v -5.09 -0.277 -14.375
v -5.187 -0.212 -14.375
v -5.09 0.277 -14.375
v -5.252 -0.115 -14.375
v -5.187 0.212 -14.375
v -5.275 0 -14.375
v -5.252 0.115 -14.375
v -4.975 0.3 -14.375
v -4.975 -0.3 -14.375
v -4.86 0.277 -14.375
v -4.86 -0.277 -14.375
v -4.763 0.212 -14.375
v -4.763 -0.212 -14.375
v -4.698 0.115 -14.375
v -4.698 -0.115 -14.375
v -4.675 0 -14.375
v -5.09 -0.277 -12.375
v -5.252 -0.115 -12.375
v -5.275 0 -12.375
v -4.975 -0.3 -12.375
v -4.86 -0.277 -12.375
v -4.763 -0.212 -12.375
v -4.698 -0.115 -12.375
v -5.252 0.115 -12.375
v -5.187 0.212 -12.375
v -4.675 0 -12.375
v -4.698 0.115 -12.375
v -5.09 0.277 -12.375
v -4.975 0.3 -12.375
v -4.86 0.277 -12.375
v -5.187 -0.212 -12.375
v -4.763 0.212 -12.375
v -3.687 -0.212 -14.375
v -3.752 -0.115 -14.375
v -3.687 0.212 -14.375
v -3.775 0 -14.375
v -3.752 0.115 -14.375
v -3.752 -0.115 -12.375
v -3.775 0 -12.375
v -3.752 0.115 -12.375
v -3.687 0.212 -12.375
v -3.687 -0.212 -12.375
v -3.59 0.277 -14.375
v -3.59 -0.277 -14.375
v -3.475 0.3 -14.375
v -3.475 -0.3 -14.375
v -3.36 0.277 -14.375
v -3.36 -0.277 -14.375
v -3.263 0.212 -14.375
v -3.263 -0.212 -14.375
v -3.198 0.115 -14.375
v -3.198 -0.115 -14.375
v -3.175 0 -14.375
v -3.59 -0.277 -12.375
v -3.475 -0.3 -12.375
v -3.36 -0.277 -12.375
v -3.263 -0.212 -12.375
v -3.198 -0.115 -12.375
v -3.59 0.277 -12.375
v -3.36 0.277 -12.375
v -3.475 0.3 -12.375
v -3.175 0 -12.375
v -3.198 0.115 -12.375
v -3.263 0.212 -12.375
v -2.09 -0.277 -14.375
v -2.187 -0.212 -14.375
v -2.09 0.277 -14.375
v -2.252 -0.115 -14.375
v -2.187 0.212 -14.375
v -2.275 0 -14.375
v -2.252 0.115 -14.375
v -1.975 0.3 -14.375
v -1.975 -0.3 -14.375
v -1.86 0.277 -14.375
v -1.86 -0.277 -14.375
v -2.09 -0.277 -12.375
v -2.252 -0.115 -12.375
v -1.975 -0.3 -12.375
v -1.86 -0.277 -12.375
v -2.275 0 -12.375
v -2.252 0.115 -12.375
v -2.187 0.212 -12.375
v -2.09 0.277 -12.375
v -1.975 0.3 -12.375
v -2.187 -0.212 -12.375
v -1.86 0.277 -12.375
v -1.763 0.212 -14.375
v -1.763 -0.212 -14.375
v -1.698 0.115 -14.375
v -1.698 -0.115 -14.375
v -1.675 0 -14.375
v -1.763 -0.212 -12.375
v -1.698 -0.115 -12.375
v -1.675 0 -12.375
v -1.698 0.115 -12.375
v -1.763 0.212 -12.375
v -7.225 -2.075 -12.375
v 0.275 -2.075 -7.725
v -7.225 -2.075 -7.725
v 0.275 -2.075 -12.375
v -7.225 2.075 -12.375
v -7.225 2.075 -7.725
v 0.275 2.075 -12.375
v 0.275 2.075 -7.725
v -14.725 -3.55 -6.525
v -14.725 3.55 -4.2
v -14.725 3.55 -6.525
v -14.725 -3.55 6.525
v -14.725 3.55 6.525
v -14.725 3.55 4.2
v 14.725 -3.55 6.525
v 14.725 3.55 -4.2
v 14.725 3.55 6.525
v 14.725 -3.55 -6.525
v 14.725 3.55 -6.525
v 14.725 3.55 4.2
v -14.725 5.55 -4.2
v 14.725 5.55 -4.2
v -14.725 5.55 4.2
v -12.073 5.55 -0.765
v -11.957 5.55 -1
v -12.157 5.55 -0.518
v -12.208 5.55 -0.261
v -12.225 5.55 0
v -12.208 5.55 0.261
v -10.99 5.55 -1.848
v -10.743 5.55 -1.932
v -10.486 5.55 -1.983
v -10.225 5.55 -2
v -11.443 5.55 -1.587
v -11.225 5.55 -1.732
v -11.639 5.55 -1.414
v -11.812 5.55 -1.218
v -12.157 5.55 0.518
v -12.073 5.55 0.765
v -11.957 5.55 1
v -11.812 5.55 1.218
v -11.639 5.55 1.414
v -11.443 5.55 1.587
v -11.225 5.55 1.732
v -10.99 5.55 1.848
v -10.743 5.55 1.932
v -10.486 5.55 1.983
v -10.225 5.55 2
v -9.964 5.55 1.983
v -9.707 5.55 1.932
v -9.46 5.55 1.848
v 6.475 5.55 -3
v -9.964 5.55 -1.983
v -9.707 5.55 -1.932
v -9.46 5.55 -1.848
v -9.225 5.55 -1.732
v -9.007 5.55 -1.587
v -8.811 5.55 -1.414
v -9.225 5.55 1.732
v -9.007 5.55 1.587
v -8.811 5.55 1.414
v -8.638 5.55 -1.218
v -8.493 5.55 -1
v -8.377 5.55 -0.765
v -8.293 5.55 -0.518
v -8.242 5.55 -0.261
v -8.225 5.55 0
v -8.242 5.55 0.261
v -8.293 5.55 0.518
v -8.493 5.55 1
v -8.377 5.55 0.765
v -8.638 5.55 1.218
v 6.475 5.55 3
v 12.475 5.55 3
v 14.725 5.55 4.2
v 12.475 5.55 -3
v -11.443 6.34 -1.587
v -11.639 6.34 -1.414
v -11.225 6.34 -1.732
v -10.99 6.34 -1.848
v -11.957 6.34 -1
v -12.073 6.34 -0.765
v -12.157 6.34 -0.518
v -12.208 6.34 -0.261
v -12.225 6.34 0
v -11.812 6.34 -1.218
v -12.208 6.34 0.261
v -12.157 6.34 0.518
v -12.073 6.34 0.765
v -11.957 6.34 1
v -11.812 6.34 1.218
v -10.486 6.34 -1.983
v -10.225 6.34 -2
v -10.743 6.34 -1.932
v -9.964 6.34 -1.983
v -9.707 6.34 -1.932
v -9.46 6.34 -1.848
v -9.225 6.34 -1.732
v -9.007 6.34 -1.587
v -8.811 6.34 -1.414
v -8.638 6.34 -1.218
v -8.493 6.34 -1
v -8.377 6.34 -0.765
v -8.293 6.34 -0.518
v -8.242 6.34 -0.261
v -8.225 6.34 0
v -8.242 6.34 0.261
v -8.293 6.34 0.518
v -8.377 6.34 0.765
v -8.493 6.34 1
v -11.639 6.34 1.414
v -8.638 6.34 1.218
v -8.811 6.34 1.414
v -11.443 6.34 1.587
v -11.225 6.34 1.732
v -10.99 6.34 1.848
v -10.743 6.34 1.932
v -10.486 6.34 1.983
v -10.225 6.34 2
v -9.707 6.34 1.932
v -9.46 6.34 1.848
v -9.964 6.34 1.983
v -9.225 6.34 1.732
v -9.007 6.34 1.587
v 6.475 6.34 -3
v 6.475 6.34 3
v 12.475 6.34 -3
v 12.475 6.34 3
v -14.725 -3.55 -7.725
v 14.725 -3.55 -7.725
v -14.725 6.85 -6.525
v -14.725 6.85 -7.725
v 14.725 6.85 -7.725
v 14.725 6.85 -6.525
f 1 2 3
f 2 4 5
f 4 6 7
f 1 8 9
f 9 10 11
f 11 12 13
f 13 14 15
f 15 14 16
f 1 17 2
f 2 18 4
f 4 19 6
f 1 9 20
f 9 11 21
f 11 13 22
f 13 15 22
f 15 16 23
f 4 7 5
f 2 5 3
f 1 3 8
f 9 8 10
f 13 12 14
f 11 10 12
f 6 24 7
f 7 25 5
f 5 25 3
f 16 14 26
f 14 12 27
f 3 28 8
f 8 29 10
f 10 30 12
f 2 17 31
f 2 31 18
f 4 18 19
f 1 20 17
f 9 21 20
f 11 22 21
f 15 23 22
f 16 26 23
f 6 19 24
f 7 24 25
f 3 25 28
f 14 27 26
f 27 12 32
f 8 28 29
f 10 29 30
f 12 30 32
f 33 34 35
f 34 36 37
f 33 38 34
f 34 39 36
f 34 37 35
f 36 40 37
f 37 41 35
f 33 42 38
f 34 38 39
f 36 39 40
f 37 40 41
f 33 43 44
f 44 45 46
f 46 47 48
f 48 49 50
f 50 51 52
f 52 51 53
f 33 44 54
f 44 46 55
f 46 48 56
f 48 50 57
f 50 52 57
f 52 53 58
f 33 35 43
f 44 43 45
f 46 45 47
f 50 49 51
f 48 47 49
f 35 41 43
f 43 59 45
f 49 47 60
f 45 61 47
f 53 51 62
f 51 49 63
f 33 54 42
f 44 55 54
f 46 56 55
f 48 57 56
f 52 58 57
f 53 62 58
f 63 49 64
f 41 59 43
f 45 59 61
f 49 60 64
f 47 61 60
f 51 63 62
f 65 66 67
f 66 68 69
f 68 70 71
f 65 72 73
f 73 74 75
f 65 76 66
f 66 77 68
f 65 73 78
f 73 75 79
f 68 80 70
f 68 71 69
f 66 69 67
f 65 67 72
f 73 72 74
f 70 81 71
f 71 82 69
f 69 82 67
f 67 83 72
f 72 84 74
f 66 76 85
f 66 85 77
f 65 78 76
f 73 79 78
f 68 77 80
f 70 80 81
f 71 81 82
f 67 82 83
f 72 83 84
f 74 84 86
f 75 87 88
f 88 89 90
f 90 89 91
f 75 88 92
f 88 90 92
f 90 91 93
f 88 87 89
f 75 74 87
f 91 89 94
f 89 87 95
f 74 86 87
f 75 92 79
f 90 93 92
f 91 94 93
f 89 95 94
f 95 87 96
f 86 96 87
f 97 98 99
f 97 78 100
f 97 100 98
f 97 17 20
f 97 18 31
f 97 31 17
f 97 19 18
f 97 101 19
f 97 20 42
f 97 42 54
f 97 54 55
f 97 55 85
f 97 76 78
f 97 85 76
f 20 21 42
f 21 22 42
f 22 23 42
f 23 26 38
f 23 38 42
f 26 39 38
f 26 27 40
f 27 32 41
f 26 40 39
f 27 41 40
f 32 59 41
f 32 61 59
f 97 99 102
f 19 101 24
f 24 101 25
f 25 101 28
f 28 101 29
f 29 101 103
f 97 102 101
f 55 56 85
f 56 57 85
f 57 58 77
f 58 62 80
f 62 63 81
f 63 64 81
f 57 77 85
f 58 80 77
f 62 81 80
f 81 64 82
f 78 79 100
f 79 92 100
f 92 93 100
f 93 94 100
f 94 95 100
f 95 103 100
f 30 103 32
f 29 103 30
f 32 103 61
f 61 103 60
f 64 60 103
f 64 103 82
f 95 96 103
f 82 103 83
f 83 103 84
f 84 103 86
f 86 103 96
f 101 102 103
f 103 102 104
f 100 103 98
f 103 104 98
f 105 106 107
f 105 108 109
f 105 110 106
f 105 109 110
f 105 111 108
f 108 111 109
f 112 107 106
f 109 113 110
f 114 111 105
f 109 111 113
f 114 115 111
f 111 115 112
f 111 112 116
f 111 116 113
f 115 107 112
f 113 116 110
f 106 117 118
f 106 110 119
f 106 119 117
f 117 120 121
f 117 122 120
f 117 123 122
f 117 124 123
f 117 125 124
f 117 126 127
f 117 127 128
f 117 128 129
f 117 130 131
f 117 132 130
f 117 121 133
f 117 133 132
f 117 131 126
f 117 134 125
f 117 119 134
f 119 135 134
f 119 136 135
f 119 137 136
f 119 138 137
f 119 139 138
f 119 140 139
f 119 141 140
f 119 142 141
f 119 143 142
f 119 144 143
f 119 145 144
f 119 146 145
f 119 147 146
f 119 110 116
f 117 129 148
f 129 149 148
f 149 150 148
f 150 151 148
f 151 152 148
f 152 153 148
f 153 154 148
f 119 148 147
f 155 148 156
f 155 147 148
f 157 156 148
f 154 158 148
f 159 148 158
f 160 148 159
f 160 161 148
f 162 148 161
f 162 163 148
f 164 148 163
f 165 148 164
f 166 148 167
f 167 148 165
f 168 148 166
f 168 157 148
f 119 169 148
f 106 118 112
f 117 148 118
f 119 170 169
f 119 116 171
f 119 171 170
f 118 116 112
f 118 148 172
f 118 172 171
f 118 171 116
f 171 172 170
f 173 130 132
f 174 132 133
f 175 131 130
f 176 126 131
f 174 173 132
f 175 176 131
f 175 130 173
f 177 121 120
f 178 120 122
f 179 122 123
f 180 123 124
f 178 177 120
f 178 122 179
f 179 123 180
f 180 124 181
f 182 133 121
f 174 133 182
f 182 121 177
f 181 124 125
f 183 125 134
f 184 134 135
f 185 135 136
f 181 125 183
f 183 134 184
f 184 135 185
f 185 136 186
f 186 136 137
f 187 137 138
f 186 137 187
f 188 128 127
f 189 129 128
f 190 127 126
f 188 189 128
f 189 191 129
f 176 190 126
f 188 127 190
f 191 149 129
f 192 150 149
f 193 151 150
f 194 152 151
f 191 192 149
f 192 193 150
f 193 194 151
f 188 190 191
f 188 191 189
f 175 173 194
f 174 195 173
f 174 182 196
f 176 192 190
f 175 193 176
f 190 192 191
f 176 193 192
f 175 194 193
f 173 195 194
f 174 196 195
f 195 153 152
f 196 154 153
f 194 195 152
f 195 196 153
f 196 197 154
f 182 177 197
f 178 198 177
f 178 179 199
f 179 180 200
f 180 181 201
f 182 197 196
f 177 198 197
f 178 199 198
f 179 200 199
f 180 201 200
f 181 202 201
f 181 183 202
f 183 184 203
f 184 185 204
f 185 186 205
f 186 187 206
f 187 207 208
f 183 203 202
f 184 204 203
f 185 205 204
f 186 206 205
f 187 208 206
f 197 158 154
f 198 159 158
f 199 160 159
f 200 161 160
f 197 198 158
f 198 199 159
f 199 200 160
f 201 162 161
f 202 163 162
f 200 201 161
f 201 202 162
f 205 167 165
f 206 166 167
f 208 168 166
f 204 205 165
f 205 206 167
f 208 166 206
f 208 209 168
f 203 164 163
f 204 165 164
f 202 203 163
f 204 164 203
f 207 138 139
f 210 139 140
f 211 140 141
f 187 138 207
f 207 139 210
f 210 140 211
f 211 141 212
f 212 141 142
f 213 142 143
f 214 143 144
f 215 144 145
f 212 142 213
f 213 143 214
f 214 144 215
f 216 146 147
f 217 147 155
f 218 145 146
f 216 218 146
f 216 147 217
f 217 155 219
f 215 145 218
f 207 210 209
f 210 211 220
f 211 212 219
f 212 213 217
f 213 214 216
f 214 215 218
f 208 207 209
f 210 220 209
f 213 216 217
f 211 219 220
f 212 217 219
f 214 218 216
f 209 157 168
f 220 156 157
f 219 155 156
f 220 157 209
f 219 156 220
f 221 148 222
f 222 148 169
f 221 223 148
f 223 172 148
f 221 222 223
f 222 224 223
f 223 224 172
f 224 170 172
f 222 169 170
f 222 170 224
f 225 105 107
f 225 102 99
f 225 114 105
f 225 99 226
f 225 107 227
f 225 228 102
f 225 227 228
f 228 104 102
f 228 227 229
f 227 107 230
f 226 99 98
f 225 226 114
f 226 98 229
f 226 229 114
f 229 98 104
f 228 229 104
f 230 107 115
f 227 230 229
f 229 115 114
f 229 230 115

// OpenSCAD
// Sharp GP2Y0D413K0F Distance Sensor Outline Model
// Coordinate system: origin at body center
// +Z up (connector below), +Y front (lens face)
// Units: mm

// ---- Main body dimensions ----
body_width  = 29.45;   // X (along light emitter to detector)
body_depth  = 7.1;     // Y (front-back without lens case)
body_height = 13.05;   // Z

// ---- Lens case (front protrusion) ----
lens_case_w     = 29.45;   // approx along X (slightly less, but use body width)
lens_case_protr = 2.0;     // protrudes ~2 mm from body front
lens_case_h     = 8.4;     // height of lens-case region

// ---- Lens positions (from left edge) ----
emitter_x_from_left  = 4.5;    // *4.5
detector_x_from_left = 4.5 + 19.7; // *19.7 between centers
// In centered coord:
emitter_x  = -body_width/2 + emitter_x_from_left;
detector_x = -body_width/2 + detector_x_from_left;

// ---- Lens dimensions (visible window) ----
emitter_lens_dia   = 4.0;   // circular emitter window (approx)
detector_lens_w    = 6.0;   // rectangular detector window width
detector_lens_h    = 6.0;   // detector window height

// ---- PWB ----
pwb_w = 29.45;
pwb_d = 7.1 + 3.3;   // roughly extends a bit; use body depth + small
pwb_t = 1.2;         // thickness

// Total height from PWB bottom to top of body = 18.9
// body_height (13.05) + pwb_t (1.2) = 14.25; remaining ~4.65 is connector region
total_h = 18.9;

// ---- Connector ----
conn_w = 7.5;       // approx (4.15 + some)
conn_d = 4.15;
conn_h = total_h - body_height - pwb_t;  // ~4.65
conn_x_from_left = 7.5 + 4.15/2; // approximate center
conn_x = -body_width/2 + 7.5 + 4.15/2;

// =====================================================
// MODULES
// =====================================================

module main_body() {
    color("DimGray")
    translate([-body_width/2, -body_depth/2, -body_height/2])
        cube([body_width, body_depth, body_height]);
}

module lens_case() {
    // Protrudes in +Y direction
    color("DimGray")
    translate([-lens_case_w/2, body_depth/2, -lens_case_h/2])
        cube([lens_case_w, lens_case_protr, lens_case_h]);
}

module emitter_lens() {
    // Circular window on lens case front
    color("Black")
    translate([emitter_x, body_depth/2 + lens_case_protr - 0.01, 0])
        rotate([-90, 0, 0])
            cylinder(h = 0.8, d = emitter_lens_dia, $fn = 48);
}

module detector_lens() {
    // Rectangular window on lens case front
    color("Black")
    translate([detector_x - detector_lens_w/2,
               body_depth/2 + lens_case_protr - 0.01,
               -detector_lens_h/2])
        cube([detector_lens_w, 0.8, detector_lens_h]);
}

module pwb() {
    // Printed Wiring Board, thin plate beneath body
    color("DarkGreen")
    translate([-pwb_w/2, -body_depth/2, -body_height/2 - pwb_t])
        cube([pwb_w, pwb_d, pwb_t]);
}

module connector() {
    // Simplified 3-pin connector below PWB
    conn_body_w = 7.5;
    conn_body_d = 4.15;
    color("Ivory")
    translate([-body_width/2 + 7.5,
               -conn_body_d/2,
               -body_height/2 - pwb_t - conn_h])
        cube([conn_body_w, conn_body_d, conn_h]);

    // 3 pins underneath (visualization)
    pin_dia = 0.6;
    pin_len = 2.0;
    pin_pitch = 1.5;
    pin_center_x = -body_width/2 + 7.5 + 7.5/2;
    for (i = [-1, 0, 1]) {
        color("Gold")
        translate([pin_center_x + i * pin_pitch, 0,
                   -body_height/2 - pwb_t - conn_h - pin_len/2])
            cylinder(h = pin_len, d = pin_dia, center = true, $fn = 16);
    }
}

// =====================================================
// ASSEMBLY
// =====================================================
module gp2y0d413k0f() {
    main_body();
    lens_case();
    emitter_lens();
    detector_lens();
    pwb();
    connector();
}

gp2y0d413k0f();
